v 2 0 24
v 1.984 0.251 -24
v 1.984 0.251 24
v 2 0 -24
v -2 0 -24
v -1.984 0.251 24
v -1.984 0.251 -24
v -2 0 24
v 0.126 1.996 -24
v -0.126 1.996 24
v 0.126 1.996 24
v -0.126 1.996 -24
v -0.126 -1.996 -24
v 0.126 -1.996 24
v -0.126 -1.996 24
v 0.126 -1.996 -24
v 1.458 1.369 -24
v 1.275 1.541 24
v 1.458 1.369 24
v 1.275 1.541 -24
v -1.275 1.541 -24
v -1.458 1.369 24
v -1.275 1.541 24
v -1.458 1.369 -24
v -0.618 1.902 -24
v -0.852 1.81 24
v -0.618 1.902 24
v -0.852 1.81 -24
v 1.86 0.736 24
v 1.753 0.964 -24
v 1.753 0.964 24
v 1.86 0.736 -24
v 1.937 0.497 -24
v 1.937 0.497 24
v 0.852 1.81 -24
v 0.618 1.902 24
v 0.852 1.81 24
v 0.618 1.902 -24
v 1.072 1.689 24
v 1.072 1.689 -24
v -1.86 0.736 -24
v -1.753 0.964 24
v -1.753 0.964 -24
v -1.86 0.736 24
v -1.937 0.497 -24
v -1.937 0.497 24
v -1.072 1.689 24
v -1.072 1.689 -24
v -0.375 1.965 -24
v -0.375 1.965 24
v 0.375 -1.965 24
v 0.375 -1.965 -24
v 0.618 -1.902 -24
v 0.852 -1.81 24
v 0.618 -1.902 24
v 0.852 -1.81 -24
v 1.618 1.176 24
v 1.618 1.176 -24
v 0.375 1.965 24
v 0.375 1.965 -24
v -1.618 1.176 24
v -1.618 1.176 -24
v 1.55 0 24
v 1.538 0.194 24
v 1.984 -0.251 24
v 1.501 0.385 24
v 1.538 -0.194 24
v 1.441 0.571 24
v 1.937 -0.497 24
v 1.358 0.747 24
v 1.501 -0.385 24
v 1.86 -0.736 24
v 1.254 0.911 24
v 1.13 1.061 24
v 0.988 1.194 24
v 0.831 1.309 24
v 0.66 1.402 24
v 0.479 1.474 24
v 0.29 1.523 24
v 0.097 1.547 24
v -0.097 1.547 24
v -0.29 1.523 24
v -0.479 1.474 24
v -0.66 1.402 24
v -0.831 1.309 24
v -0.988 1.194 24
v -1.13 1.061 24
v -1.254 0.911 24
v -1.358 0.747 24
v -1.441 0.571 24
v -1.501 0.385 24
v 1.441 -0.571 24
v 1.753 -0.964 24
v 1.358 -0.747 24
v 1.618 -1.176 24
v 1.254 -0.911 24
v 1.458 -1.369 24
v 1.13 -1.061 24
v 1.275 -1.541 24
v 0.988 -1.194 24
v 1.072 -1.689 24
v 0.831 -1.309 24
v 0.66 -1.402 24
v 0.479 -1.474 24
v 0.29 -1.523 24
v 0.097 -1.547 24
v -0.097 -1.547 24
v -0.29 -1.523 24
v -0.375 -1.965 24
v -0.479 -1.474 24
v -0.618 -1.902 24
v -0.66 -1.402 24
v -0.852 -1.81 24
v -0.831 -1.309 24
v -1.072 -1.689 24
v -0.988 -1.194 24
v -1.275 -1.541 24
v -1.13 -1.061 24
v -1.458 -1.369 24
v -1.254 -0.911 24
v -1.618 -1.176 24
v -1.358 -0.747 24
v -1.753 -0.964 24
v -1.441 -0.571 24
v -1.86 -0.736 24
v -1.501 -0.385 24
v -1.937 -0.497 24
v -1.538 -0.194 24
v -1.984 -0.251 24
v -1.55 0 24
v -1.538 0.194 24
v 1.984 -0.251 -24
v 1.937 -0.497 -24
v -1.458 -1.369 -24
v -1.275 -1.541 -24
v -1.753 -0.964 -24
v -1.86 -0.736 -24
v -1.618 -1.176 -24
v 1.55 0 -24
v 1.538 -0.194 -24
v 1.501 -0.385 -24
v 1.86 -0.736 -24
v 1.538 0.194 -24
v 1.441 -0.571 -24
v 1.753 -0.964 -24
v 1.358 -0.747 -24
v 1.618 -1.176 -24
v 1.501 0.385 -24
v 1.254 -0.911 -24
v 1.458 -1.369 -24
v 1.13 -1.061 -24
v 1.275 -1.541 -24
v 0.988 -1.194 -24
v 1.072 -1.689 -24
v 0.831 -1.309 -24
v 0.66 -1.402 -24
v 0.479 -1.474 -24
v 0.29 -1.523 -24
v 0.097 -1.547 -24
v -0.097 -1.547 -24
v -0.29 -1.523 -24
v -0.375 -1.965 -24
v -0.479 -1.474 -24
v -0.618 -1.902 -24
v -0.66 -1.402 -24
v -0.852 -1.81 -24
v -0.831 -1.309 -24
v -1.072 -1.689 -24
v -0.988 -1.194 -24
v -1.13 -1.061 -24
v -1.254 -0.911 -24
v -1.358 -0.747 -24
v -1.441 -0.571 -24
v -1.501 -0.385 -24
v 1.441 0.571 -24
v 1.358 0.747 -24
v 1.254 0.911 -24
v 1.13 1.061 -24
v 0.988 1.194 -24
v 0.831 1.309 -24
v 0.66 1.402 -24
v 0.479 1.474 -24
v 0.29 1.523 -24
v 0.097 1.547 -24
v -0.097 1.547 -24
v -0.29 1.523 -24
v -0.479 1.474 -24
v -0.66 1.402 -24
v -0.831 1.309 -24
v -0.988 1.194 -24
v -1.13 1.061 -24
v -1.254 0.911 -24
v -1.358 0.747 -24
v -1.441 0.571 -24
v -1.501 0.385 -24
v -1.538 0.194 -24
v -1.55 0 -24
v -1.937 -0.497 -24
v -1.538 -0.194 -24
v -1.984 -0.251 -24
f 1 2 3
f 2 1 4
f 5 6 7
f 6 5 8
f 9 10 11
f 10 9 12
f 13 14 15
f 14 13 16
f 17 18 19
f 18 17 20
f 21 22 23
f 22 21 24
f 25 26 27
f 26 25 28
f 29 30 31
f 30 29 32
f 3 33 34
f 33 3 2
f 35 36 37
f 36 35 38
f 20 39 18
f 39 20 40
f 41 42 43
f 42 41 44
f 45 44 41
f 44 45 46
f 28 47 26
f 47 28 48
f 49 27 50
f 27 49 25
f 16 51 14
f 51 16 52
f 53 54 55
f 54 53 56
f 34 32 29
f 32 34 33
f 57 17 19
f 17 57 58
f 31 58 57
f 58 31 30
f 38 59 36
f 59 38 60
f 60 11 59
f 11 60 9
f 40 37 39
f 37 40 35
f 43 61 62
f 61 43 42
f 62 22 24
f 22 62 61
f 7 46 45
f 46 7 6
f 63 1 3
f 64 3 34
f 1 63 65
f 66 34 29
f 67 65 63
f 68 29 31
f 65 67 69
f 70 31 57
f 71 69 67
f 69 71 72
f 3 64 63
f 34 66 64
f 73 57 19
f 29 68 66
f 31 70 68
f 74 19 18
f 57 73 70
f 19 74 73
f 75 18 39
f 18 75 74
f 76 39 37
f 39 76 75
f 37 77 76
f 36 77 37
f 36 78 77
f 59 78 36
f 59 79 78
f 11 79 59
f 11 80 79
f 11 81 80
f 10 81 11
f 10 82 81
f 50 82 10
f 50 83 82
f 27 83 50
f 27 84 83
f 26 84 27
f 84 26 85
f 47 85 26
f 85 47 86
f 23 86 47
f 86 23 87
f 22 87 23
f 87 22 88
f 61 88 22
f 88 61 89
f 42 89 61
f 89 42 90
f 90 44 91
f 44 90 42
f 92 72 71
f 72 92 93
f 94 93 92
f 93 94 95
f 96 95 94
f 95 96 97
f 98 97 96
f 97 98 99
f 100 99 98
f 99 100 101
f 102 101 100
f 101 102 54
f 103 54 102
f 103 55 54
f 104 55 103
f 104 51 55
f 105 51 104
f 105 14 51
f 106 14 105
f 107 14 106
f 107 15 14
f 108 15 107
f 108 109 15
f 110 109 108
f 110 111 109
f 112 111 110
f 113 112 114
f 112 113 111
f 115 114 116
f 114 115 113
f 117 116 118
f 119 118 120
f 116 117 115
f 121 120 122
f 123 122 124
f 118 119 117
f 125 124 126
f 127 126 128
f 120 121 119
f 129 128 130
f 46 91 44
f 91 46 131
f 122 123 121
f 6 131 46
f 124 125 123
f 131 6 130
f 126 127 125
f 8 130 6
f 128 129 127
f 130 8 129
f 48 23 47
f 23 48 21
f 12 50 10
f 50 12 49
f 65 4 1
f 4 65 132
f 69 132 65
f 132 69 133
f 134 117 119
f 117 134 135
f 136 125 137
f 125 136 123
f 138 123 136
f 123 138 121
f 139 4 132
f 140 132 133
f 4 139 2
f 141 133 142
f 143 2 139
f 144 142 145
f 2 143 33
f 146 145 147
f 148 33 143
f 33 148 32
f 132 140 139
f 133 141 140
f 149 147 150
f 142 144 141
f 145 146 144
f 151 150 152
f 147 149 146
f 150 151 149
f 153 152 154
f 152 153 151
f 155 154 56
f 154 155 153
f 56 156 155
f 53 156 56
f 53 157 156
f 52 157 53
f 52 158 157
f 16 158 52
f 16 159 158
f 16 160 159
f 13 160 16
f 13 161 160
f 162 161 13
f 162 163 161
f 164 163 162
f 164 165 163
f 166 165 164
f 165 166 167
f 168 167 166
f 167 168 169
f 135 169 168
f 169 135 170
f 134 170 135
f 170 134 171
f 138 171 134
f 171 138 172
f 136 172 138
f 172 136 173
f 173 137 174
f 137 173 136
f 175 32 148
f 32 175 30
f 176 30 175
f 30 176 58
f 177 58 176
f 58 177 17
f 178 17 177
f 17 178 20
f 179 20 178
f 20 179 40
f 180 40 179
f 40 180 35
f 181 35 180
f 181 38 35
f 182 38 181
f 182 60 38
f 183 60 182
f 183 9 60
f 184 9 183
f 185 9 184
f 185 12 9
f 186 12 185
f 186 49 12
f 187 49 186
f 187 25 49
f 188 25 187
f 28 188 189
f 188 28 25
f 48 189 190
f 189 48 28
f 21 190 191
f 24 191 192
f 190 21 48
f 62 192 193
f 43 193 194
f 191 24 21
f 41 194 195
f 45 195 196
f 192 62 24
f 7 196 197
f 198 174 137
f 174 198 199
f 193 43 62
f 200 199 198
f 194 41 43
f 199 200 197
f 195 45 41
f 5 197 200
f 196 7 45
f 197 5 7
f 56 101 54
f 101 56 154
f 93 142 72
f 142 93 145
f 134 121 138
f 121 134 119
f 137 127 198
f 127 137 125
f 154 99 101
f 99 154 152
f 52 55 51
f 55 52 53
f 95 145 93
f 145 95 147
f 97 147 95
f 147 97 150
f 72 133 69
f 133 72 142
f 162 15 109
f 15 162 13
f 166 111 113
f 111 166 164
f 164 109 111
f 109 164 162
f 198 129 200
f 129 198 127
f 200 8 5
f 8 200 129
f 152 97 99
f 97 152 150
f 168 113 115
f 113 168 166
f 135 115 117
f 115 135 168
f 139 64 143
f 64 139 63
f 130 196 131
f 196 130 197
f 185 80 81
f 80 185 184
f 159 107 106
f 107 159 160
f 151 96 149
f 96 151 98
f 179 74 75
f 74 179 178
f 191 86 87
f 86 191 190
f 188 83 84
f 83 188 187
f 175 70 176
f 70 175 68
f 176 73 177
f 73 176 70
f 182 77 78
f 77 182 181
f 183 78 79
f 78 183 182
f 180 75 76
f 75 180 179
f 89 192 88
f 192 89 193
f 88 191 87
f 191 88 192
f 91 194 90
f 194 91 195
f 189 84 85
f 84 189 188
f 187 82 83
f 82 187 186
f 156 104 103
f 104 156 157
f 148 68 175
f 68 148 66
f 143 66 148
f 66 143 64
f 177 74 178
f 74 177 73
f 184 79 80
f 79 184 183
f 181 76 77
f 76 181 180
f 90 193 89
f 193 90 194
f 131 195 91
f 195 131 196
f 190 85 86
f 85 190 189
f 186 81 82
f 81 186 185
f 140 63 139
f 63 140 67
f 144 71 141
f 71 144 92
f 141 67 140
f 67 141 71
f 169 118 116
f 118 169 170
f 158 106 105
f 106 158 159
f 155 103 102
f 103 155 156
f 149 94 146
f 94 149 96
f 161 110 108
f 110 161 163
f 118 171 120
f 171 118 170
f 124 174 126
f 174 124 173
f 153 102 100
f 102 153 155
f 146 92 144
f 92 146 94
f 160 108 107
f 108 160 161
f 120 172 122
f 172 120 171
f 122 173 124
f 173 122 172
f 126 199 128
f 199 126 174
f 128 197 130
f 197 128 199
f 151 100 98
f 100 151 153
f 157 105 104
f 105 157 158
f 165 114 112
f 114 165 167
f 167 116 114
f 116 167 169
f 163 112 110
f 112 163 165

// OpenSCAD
$fn = 50;


difference() {
	union() {
		translate(v = [0, 0, -24.0000000000]) {
			cylinder(h = 48, r = 2.0000000000);
		}
	}
	union() {
		translate(v = [0, 0, -100.0000000000]) {
			cylinder(h = 200, r = 1.5500000000);
		}
	}
}
